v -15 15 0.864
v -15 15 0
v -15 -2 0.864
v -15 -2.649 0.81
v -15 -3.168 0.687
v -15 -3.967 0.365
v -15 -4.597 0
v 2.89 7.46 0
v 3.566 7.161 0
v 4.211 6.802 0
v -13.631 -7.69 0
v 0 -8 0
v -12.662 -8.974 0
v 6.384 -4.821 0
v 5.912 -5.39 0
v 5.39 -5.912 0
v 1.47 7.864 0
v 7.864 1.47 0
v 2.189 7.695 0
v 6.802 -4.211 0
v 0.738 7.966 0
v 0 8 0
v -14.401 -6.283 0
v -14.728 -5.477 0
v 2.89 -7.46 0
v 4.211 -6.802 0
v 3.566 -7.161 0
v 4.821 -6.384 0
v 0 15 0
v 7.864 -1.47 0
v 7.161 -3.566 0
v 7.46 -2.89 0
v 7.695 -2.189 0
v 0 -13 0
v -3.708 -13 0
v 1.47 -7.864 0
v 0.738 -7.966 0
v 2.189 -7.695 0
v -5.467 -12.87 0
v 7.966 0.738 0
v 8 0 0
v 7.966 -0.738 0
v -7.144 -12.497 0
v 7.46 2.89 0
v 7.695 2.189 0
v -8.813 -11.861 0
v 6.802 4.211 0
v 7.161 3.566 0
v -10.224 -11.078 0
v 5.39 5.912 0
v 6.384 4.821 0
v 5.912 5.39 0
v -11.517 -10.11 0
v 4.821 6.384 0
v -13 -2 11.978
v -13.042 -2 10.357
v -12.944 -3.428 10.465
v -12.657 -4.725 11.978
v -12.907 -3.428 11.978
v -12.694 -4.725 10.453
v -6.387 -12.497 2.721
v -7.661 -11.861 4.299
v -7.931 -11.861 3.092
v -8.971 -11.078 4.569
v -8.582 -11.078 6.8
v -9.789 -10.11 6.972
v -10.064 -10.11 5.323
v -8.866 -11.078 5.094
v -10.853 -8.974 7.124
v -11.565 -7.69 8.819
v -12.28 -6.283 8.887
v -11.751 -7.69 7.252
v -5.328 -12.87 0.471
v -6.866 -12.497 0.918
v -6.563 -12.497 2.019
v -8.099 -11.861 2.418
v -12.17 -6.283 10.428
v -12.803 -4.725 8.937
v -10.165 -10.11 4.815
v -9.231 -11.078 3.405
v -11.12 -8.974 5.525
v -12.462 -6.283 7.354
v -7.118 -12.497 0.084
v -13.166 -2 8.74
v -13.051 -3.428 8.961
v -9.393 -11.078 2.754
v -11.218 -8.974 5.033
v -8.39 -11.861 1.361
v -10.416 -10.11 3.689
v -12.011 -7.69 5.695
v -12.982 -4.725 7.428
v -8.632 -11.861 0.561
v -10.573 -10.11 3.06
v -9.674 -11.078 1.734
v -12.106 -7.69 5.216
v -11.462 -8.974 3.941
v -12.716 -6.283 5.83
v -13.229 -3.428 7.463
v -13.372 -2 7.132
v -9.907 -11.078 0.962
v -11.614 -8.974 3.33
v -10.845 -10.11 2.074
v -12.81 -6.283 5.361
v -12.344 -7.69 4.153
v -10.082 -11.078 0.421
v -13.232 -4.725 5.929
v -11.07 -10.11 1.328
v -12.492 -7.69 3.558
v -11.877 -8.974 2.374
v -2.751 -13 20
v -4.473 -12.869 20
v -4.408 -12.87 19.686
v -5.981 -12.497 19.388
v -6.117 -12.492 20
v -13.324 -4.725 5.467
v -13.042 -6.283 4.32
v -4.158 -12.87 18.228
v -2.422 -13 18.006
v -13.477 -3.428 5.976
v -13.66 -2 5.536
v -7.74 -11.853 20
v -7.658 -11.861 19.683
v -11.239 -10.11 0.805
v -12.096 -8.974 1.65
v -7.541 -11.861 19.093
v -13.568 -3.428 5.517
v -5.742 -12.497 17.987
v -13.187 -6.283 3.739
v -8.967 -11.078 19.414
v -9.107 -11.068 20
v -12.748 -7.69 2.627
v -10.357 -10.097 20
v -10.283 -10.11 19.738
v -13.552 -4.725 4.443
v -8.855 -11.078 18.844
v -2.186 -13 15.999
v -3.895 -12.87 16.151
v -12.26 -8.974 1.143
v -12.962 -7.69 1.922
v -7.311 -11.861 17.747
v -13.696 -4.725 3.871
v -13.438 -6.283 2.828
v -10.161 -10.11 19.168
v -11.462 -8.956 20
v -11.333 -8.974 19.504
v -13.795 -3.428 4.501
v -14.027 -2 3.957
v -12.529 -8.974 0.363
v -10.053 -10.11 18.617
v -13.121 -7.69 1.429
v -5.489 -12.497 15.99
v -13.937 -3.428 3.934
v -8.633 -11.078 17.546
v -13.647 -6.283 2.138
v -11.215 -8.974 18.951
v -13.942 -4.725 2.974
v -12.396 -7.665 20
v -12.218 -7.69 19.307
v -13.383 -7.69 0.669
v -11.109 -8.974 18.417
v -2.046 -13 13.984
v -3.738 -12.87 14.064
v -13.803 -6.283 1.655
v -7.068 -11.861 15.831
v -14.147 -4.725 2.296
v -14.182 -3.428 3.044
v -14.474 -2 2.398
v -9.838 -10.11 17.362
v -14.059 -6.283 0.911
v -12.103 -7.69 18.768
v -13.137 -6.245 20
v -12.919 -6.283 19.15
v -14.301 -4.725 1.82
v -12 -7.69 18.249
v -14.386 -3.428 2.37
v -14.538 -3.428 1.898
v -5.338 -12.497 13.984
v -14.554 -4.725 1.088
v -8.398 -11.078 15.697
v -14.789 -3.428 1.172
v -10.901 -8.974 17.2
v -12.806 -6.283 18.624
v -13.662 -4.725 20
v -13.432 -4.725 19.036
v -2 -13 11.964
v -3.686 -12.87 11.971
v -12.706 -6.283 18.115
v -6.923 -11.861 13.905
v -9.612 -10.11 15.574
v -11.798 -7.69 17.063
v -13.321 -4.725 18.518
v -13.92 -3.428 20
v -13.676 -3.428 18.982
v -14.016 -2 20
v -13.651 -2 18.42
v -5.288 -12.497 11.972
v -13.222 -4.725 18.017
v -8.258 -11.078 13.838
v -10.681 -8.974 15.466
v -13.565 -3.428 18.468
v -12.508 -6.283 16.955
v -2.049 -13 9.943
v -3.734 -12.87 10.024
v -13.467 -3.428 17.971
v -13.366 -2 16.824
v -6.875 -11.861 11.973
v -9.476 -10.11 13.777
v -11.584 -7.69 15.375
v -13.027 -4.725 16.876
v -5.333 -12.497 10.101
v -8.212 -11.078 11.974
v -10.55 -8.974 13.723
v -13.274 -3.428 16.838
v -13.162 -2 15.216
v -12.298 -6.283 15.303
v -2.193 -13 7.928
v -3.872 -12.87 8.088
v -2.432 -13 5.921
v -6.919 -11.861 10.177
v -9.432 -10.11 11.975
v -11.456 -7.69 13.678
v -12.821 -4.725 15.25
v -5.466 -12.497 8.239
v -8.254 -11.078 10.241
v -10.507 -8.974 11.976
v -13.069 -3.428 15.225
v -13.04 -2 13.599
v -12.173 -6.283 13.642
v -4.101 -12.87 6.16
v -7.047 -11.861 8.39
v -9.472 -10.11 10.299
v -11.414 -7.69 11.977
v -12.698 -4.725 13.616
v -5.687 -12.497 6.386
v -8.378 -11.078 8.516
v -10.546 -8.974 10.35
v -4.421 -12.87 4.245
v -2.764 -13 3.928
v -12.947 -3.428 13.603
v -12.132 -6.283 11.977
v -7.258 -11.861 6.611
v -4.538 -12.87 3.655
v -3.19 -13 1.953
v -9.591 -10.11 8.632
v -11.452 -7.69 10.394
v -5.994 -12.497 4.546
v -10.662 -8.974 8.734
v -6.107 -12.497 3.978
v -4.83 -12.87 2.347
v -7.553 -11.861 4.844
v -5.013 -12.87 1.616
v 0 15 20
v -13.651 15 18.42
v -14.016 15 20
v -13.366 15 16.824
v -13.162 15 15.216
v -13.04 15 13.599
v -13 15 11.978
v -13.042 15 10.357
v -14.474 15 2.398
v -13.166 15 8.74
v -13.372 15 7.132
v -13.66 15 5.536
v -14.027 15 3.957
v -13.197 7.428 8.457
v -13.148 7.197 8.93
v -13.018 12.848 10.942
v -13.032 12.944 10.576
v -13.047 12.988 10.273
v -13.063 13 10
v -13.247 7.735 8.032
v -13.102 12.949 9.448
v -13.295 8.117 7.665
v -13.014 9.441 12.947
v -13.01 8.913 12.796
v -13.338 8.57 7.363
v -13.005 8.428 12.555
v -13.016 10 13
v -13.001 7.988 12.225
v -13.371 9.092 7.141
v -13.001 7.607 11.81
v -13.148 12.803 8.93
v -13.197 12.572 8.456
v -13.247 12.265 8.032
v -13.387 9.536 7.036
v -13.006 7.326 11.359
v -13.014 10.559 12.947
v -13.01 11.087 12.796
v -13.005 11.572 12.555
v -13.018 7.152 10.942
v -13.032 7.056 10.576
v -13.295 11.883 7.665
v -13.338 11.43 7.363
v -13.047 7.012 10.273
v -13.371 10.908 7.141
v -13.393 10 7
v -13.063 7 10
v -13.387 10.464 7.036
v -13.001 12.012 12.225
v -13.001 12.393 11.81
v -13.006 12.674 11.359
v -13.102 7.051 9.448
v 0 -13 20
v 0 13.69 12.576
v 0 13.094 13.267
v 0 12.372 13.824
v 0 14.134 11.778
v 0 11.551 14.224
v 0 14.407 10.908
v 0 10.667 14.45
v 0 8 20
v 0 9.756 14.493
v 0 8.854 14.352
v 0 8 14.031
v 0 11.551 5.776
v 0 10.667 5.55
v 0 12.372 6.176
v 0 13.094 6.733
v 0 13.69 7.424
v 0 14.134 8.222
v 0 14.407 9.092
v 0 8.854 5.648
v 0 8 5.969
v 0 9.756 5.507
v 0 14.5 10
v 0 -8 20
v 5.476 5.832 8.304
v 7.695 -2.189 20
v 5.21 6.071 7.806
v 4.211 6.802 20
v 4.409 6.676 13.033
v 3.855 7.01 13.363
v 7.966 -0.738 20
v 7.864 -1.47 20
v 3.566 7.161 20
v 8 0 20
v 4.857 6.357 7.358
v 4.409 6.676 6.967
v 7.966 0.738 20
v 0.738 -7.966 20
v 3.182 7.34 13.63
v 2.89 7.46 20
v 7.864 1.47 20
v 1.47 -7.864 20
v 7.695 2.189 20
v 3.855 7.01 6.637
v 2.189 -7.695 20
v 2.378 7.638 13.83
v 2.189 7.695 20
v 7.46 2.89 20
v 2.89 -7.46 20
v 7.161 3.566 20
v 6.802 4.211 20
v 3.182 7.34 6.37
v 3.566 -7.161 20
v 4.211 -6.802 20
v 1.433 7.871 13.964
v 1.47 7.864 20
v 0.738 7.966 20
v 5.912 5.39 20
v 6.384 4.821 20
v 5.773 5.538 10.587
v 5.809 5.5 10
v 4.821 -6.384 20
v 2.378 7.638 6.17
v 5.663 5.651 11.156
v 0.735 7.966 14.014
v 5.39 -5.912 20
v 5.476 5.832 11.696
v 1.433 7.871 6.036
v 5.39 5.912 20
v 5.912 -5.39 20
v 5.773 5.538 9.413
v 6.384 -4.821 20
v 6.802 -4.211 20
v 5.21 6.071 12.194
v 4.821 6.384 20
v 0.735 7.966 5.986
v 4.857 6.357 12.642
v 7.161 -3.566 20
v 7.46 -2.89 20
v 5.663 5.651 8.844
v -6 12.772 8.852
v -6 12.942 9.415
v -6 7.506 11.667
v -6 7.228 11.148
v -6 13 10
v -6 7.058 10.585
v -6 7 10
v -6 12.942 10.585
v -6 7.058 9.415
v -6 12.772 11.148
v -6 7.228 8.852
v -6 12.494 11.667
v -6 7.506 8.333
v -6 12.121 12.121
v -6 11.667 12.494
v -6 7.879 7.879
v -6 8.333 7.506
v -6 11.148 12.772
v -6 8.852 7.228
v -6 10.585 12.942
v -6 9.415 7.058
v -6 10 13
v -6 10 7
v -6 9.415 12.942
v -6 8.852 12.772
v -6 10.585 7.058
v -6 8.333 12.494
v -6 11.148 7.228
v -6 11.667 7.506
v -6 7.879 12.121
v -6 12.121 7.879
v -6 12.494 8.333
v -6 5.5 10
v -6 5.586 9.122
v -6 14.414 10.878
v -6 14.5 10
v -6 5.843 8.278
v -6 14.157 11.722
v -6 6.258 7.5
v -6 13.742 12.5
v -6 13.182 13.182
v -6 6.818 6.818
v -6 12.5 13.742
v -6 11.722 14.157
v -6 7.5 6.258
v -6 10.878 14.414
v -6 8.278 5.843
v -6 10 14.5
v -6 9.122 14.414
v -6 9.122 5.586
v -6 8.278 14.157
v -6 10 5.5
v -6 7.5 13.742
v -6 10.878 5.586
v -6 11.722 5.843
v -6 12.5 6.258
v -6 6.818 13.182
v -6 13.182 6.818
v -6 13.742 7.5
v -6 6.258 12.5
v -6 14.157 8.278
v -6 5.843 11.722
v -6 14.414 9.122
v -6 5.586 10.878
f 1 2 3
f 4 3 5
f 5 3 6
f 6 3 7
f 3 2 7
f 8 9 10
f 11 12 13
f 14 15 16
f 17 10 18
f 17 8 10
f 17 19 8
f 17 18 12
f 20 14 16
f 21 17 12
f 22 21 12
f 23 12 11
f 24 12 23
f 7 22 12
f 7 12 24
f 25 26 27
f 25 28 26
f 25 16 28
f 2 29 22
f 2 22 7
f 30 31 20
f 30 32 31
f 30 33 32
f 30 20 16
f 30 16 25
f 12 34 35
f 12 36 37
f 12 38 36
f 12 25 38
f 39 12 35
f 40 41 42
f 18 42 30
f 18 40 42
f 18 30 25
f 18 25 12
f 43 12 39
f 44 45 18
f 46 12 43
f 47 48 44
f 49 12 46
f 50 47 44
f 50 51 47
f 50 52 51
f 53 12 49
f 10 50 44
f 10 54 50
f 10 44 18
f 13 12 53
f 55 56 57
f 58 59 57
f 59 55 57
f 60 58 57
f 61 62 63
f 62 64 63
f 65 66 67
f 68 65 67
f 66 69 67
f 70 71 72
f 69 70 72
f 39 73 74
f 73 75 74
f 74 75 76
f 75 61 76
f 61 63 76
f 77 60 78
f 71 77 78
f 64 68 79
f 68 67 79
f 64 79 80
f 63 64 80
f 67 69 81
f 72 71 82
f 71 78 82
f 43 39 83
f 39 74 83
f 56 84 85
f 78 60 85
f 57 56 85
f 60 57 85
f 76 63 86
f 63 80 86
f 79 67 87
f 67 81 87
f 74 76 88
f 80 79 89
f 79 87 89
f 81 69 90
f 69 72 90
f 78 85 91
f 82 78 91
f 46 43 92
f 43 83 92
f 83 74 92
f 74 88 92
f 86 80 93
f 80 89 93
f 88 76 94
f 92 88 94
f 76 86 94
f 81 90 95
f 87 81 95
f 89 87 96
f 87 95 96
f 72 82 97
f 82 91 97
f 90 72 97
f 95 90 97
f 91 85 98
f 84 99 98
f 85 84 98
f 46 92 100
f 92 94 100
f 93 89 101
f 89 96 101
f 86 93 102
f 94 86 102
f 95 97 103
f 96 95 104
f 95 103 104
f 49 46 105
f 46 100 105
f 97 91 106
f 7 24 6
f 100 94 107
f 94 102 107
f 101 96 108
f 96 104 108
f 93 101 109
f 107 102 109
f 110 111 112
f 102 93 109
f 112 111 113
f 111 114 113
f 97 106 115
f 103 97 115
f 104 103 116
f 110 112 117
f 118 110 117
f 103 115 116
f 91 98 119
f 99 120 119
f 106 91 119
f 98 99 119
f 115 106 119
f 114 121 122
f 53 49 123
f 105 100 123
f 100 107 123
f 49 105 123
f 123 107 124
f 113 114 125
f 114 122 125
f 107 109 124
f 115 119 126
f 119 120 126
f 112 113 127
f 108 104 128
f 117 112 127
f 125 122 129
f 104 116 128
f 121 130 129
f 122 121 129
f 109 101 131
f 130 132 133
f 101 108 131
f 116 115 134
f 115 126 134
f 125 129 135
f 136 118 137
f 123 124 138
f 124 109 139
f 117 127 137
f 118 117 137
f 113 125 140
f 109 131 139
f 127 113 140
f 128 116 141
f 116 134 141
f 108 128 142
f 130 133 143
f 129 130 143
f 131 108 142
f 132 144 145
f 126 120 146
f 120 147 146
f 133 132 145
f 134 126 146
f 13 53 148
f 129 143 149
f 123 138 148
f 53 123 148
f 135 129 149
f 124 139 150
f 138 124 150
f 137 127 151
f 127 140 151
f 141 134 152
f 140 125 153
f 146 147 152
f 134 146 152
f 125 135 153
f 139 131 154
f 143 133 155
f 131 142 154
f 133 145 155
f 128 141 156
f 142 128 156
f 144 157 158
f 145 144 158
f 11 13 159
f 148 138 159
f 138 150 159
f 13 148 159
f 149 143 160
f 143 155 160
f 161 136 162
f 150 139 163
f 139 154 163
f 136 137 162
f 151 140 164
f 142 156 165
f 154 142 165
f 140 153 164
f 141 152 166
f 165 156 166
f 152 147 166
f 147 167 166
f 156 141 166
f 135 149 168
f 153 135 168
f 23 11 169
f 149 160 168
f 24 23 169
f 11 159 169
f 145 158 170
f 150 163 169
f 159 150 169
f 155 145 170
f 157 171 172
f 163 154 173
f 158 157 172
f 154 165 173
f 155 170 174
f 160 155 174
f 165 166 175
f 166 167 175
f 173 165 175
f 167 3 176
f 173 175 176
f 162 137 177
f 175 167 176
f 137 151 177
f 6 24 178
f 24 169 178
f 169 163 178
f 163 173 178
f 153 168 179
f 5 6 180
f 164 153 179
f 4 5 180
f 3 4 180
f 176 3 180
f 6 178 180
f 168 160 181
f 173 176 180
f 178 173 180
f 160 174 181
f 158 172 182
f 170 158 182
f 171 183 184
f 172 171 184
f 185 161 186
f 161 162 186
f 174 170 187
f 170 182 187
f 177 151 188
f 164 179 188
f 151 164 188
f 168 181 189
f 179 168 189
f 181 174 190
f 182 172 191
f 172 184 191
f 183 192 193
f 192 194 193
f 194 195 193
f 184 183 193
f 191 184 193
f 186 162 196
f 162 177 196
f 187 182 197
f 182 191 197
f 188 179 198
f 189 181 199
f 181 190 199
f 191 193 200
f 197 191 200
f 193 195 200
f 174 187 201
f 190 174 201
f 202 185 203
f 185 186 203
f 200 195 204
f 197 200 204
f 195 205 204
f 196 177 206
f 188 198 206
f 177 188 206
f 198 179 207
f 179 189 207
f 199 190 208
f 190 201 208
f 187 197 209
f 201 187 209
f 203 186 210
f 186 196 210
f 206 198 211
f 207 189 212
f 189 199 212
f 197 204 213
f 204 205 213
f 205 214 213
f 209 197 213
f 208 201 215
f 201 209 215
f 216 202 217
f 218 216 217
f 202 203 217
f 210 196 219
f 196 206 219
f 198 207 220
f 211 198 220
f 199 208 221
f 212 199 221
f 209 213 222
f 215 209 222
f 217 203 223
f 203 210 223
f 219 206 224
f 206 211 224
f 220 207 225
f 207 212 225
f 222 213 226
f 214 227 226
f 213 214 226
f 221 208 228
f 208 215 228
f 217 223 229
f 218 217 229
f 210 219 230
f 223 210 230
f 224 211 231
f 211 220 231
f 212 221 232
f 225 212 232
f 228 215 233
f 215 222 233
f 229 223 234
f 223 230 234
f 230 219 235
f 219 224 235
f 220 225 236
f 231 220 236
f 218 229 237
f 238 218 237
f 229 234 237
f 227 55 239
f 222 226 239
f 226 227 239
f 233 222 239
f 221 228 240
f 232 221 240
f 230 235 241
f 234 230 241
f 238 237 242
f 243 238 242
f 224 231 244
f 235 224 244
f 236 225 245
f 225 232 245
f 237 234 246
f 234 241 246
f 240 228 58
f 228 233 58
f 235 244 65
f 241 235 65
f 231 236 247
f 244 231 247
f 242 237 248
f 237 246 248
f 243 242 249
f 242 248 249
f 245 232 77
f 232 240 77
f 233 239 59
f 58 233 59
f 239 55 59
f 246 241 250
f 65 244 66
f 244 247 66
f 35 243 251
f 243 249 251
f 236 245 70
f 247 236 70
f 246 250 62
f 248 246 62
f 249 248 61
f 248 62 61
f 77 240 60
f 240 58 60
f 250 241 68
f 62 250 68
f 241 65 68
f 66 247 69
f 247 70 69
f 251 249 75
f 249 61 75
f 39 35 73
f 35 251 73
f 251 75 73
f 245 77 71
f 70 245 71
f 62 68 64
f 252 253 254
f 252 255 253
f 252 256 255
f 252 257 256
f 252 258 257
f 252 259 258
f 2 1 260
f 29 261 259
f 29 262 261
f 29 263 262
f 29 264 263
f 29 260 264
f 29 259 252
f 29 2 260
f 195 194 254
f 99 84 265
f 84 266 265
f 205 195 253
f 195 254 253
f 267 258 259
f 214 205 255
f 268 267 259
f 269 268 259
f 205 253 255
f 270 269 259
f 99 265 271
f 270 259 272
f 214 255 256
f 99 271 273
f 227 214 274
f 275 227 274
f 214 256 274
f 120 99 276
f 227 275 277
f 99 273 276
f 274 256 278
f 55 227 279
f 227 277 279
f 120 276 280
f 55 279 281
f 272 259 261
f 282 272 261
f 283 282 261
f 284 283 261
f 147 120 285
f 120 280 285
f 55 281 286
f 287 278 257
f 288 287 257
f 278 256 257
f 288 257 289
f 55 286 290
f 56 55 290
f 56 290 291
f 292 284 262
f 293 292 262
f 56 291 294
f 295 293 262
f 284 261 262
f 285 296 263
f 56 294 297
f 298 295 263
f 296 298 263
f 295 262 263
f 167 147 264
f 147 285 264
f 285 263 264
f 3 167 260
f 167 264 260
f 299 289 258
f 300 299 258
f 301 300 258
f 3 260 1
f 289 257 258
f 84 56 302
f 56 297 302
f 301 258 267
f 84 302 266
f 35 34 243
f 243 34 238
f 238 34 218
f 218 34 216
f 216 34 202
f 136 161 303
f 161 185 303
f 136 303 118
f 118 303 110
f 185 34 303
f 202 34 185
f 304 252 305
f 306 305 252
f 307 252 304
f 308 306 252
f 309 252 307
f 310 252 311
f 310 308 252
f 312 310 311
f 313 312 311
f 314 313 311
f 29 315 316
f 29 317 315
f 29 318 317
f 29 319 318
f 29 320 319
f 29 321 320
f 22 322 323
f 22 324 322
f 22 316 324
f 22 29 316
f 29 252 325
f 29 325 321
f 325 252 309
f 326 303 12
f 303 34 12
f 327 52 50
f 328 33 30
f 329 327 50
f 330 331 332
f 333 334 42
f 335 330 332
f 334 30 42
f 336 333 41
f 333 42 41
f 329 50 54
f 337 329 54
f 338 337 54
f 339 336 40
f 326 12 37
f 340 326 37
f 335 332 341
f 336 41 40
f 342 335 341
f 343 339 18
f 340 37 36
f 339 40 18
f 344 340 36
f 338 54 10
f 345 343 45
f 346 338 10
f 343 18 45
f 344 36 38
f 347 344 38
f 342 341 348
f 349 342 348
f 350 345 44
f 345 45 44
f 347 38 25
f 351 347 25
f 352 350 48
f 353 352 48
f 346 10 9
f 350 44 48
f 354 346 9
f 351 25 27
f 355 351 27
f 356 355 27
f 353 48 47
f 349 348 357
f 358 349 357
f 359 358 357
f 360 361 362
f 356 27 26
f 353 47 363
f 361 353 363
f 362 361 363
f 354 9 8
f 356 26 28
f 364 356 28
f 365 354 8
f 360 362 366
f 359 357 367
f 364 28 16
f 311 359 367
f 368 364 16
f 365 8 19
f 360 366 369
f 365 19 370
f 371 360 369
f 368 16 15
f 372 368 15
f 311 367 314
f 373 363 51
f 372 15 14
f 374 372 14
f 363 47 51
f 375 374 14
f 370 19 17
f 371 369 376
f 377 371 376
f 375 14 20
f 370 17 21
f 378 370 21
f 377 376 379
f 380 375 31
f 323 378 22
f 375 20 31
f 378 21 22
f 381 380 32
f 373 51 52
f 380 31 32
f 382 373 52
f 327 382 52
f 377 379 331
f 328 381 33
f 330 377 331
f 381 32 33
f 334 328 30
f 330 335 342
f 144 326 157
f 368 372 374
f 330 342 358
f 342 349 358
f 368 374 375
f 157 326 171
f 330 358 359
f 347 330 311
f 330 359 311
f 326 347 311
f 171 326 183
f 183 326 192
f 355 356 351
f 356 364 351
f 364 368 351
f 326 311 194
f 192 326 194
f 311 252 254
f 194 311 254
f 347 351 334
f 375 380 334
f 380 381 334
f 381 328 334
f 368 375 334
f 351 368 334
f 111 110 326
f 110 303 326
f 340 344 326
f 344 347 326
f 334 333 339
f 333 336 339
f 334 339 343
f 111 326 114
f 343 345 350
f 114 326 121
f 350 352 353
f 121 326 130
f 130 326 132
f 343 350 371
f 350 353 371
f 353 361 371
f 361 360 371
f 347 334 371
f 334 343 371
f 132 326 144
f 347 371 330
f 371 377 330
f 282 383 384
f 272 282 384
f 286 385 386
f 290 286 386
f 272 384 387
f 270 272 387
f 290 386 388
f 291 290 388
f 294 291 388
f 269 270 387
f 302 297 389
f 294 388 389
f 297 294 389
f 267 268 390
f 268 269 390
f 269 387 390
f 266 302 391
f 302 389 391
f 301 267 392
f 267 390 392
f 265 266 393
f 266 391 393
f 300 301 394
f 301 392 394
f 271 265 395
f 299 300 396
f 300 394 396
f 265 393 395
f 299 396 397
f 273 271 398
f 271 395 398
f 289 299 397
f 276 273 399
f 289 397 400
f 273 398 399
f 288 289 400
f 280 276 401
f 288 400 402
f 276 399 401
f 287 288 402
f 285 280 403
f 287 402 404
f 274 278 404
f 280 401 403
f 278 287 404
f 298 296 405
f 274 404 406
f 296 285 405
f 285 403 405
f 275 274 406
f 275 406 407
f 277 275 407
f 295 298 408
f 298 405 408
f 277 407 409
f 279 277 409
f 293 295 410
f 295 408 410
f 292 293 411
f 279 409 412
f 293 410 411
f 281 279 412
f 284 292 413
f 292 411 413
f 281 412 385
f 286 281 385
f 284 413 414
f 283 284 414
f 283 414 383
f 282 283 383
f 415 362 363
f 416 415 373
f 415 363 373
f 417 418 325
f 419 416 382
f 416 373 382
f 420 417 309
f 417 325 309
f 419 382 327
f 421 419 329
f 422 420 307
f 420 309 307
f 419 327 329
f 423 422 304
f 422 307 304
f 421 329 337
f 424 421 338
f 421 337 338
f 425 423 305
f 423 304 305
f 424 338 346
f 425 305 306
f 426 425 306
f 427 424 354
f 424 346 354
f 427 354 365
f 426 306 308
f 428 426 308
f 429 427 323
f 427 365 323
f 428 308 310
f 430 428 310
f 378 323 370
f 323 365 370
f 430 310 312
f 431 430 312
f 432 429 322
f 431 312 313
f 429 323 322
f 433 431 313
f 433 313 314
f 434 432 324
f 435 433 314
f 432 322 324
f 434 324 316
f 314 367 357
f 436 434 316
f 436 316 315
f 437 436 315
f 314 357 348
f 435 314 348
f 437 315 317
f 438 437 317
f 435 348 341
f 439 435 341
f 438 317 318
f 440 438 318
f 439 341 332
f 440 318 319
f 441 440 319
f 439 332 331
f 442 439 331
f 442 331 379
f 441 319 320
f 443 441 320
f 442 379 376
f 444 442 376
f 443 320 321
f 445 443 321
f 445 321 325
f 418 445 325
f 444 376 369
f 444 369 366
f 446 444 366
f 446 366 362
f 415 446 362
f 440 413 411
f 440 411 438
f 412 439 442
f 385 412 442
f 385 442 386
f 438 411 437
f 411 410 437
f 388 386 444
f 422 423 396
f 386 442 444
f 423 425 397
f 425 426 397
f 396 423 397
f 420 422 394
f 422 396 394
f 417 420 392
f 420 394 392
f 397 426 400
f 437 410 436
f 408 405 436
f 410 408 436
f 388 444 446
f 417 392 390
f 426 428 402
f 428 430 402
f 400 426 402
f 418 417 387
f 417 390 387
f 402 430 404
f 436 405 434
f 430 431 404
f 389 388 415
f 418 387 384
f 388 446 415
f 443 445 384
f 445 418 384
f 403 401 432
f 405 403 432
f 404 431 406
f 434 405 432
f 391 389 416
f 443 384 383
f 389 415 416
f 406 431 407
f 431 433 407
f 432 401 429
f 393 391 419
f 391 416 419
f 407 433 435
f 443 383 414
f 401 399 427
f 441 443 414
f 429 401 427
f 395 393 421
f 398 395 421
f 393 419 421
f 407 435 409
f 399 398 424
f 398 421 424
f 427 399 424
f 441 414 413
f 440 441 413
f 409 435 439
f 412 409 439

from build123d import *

# Parameters (mm, degrees)
PAD_DEPTH       = 20
POCKET_DEPTH    = 30.001
SKETCH002_R     = 4.5
POCKET001_DEPTH = 6
SKETCH003_R     = 3
POCKET002_DEPTH = 15.001
SKETCH004_W     = 15
SKETCH004_H     = 2
POCKET003_DEPTH = 20.001
FILLET_R        = 11


with BuildPart() as part:
    # Sketch → Pad (new body)
    with BuildSketch(Plane.XY):
        with BuildLine():
            Line((-15, -15), (0, -15))
            Line((0, -15), (0, -8))
            ThreePointArc((0, -8), (8, 0), (0, 8))
            Line((0, 15), (0, 8))
            Line((-15, 15), (0, 15))
            Line((-15, 15), (-15, -15))
        make_face()
    extrude(amount=PAD_DEPTH)

    # Sketch001 → Pocket (cut, through all)
    with BuildSketch(Plane(origin=(0, 15, 0), x_dir=(-1, 0, 0), z_dir=(0, 1, 0))):
        with BuildLine():
            Line((19.016133, 20), (19.016133, 0))
            Line((19.016133, 0), (15.335206, 0))
            ThreePointArc((14.016133, 20), (13.069372, 9.894059), (15.335206, 0))
            Line((19.016133, 20), (14.016133, 20))
        make_face()
    extrude(amount=-POCKET_DEPTH, mode=Mode.SUBTRACT)

    # Sketch002 → Pocket001 (cut, symmetric)
    with BuildSketch(Plane.YZ):
        with Locations((10, 10)):
            Circle(SKETCH002_R)
    extrude(amount=POCKET001_DEPTH, both=True, mode=Mode.SUBTRACT)

    # Sketch003 → Pocket002 (cut, through all)
    with BuildSketch(Plane.YZ):
        with Locations((10, 10)):
            Circle(SKETCH003_R)
    extrude(amount=-POCKET002_DEPTH, mode=Mode.SUBTRACT)

    # Sketch004 → Pocket003 (cut, through all)
    with BuildSketch(Plane.XY.offset(20)):
        with Locations((-7.5, -14)):
            Rectangle(SKETCH004_W, SKETCH004_H)
    extrude(amount=-POCKET003_DEPTH, mode=Mode.SUBTRACT)

    # Fillet
    fillet_edges = [part.edges().sort_by_distance(p)[0] for p in [
        (-13.042214, -13, 10.356868),
    ]]
    fillet(fillet_edges, radius=FILLET_R)


solid = part.part
